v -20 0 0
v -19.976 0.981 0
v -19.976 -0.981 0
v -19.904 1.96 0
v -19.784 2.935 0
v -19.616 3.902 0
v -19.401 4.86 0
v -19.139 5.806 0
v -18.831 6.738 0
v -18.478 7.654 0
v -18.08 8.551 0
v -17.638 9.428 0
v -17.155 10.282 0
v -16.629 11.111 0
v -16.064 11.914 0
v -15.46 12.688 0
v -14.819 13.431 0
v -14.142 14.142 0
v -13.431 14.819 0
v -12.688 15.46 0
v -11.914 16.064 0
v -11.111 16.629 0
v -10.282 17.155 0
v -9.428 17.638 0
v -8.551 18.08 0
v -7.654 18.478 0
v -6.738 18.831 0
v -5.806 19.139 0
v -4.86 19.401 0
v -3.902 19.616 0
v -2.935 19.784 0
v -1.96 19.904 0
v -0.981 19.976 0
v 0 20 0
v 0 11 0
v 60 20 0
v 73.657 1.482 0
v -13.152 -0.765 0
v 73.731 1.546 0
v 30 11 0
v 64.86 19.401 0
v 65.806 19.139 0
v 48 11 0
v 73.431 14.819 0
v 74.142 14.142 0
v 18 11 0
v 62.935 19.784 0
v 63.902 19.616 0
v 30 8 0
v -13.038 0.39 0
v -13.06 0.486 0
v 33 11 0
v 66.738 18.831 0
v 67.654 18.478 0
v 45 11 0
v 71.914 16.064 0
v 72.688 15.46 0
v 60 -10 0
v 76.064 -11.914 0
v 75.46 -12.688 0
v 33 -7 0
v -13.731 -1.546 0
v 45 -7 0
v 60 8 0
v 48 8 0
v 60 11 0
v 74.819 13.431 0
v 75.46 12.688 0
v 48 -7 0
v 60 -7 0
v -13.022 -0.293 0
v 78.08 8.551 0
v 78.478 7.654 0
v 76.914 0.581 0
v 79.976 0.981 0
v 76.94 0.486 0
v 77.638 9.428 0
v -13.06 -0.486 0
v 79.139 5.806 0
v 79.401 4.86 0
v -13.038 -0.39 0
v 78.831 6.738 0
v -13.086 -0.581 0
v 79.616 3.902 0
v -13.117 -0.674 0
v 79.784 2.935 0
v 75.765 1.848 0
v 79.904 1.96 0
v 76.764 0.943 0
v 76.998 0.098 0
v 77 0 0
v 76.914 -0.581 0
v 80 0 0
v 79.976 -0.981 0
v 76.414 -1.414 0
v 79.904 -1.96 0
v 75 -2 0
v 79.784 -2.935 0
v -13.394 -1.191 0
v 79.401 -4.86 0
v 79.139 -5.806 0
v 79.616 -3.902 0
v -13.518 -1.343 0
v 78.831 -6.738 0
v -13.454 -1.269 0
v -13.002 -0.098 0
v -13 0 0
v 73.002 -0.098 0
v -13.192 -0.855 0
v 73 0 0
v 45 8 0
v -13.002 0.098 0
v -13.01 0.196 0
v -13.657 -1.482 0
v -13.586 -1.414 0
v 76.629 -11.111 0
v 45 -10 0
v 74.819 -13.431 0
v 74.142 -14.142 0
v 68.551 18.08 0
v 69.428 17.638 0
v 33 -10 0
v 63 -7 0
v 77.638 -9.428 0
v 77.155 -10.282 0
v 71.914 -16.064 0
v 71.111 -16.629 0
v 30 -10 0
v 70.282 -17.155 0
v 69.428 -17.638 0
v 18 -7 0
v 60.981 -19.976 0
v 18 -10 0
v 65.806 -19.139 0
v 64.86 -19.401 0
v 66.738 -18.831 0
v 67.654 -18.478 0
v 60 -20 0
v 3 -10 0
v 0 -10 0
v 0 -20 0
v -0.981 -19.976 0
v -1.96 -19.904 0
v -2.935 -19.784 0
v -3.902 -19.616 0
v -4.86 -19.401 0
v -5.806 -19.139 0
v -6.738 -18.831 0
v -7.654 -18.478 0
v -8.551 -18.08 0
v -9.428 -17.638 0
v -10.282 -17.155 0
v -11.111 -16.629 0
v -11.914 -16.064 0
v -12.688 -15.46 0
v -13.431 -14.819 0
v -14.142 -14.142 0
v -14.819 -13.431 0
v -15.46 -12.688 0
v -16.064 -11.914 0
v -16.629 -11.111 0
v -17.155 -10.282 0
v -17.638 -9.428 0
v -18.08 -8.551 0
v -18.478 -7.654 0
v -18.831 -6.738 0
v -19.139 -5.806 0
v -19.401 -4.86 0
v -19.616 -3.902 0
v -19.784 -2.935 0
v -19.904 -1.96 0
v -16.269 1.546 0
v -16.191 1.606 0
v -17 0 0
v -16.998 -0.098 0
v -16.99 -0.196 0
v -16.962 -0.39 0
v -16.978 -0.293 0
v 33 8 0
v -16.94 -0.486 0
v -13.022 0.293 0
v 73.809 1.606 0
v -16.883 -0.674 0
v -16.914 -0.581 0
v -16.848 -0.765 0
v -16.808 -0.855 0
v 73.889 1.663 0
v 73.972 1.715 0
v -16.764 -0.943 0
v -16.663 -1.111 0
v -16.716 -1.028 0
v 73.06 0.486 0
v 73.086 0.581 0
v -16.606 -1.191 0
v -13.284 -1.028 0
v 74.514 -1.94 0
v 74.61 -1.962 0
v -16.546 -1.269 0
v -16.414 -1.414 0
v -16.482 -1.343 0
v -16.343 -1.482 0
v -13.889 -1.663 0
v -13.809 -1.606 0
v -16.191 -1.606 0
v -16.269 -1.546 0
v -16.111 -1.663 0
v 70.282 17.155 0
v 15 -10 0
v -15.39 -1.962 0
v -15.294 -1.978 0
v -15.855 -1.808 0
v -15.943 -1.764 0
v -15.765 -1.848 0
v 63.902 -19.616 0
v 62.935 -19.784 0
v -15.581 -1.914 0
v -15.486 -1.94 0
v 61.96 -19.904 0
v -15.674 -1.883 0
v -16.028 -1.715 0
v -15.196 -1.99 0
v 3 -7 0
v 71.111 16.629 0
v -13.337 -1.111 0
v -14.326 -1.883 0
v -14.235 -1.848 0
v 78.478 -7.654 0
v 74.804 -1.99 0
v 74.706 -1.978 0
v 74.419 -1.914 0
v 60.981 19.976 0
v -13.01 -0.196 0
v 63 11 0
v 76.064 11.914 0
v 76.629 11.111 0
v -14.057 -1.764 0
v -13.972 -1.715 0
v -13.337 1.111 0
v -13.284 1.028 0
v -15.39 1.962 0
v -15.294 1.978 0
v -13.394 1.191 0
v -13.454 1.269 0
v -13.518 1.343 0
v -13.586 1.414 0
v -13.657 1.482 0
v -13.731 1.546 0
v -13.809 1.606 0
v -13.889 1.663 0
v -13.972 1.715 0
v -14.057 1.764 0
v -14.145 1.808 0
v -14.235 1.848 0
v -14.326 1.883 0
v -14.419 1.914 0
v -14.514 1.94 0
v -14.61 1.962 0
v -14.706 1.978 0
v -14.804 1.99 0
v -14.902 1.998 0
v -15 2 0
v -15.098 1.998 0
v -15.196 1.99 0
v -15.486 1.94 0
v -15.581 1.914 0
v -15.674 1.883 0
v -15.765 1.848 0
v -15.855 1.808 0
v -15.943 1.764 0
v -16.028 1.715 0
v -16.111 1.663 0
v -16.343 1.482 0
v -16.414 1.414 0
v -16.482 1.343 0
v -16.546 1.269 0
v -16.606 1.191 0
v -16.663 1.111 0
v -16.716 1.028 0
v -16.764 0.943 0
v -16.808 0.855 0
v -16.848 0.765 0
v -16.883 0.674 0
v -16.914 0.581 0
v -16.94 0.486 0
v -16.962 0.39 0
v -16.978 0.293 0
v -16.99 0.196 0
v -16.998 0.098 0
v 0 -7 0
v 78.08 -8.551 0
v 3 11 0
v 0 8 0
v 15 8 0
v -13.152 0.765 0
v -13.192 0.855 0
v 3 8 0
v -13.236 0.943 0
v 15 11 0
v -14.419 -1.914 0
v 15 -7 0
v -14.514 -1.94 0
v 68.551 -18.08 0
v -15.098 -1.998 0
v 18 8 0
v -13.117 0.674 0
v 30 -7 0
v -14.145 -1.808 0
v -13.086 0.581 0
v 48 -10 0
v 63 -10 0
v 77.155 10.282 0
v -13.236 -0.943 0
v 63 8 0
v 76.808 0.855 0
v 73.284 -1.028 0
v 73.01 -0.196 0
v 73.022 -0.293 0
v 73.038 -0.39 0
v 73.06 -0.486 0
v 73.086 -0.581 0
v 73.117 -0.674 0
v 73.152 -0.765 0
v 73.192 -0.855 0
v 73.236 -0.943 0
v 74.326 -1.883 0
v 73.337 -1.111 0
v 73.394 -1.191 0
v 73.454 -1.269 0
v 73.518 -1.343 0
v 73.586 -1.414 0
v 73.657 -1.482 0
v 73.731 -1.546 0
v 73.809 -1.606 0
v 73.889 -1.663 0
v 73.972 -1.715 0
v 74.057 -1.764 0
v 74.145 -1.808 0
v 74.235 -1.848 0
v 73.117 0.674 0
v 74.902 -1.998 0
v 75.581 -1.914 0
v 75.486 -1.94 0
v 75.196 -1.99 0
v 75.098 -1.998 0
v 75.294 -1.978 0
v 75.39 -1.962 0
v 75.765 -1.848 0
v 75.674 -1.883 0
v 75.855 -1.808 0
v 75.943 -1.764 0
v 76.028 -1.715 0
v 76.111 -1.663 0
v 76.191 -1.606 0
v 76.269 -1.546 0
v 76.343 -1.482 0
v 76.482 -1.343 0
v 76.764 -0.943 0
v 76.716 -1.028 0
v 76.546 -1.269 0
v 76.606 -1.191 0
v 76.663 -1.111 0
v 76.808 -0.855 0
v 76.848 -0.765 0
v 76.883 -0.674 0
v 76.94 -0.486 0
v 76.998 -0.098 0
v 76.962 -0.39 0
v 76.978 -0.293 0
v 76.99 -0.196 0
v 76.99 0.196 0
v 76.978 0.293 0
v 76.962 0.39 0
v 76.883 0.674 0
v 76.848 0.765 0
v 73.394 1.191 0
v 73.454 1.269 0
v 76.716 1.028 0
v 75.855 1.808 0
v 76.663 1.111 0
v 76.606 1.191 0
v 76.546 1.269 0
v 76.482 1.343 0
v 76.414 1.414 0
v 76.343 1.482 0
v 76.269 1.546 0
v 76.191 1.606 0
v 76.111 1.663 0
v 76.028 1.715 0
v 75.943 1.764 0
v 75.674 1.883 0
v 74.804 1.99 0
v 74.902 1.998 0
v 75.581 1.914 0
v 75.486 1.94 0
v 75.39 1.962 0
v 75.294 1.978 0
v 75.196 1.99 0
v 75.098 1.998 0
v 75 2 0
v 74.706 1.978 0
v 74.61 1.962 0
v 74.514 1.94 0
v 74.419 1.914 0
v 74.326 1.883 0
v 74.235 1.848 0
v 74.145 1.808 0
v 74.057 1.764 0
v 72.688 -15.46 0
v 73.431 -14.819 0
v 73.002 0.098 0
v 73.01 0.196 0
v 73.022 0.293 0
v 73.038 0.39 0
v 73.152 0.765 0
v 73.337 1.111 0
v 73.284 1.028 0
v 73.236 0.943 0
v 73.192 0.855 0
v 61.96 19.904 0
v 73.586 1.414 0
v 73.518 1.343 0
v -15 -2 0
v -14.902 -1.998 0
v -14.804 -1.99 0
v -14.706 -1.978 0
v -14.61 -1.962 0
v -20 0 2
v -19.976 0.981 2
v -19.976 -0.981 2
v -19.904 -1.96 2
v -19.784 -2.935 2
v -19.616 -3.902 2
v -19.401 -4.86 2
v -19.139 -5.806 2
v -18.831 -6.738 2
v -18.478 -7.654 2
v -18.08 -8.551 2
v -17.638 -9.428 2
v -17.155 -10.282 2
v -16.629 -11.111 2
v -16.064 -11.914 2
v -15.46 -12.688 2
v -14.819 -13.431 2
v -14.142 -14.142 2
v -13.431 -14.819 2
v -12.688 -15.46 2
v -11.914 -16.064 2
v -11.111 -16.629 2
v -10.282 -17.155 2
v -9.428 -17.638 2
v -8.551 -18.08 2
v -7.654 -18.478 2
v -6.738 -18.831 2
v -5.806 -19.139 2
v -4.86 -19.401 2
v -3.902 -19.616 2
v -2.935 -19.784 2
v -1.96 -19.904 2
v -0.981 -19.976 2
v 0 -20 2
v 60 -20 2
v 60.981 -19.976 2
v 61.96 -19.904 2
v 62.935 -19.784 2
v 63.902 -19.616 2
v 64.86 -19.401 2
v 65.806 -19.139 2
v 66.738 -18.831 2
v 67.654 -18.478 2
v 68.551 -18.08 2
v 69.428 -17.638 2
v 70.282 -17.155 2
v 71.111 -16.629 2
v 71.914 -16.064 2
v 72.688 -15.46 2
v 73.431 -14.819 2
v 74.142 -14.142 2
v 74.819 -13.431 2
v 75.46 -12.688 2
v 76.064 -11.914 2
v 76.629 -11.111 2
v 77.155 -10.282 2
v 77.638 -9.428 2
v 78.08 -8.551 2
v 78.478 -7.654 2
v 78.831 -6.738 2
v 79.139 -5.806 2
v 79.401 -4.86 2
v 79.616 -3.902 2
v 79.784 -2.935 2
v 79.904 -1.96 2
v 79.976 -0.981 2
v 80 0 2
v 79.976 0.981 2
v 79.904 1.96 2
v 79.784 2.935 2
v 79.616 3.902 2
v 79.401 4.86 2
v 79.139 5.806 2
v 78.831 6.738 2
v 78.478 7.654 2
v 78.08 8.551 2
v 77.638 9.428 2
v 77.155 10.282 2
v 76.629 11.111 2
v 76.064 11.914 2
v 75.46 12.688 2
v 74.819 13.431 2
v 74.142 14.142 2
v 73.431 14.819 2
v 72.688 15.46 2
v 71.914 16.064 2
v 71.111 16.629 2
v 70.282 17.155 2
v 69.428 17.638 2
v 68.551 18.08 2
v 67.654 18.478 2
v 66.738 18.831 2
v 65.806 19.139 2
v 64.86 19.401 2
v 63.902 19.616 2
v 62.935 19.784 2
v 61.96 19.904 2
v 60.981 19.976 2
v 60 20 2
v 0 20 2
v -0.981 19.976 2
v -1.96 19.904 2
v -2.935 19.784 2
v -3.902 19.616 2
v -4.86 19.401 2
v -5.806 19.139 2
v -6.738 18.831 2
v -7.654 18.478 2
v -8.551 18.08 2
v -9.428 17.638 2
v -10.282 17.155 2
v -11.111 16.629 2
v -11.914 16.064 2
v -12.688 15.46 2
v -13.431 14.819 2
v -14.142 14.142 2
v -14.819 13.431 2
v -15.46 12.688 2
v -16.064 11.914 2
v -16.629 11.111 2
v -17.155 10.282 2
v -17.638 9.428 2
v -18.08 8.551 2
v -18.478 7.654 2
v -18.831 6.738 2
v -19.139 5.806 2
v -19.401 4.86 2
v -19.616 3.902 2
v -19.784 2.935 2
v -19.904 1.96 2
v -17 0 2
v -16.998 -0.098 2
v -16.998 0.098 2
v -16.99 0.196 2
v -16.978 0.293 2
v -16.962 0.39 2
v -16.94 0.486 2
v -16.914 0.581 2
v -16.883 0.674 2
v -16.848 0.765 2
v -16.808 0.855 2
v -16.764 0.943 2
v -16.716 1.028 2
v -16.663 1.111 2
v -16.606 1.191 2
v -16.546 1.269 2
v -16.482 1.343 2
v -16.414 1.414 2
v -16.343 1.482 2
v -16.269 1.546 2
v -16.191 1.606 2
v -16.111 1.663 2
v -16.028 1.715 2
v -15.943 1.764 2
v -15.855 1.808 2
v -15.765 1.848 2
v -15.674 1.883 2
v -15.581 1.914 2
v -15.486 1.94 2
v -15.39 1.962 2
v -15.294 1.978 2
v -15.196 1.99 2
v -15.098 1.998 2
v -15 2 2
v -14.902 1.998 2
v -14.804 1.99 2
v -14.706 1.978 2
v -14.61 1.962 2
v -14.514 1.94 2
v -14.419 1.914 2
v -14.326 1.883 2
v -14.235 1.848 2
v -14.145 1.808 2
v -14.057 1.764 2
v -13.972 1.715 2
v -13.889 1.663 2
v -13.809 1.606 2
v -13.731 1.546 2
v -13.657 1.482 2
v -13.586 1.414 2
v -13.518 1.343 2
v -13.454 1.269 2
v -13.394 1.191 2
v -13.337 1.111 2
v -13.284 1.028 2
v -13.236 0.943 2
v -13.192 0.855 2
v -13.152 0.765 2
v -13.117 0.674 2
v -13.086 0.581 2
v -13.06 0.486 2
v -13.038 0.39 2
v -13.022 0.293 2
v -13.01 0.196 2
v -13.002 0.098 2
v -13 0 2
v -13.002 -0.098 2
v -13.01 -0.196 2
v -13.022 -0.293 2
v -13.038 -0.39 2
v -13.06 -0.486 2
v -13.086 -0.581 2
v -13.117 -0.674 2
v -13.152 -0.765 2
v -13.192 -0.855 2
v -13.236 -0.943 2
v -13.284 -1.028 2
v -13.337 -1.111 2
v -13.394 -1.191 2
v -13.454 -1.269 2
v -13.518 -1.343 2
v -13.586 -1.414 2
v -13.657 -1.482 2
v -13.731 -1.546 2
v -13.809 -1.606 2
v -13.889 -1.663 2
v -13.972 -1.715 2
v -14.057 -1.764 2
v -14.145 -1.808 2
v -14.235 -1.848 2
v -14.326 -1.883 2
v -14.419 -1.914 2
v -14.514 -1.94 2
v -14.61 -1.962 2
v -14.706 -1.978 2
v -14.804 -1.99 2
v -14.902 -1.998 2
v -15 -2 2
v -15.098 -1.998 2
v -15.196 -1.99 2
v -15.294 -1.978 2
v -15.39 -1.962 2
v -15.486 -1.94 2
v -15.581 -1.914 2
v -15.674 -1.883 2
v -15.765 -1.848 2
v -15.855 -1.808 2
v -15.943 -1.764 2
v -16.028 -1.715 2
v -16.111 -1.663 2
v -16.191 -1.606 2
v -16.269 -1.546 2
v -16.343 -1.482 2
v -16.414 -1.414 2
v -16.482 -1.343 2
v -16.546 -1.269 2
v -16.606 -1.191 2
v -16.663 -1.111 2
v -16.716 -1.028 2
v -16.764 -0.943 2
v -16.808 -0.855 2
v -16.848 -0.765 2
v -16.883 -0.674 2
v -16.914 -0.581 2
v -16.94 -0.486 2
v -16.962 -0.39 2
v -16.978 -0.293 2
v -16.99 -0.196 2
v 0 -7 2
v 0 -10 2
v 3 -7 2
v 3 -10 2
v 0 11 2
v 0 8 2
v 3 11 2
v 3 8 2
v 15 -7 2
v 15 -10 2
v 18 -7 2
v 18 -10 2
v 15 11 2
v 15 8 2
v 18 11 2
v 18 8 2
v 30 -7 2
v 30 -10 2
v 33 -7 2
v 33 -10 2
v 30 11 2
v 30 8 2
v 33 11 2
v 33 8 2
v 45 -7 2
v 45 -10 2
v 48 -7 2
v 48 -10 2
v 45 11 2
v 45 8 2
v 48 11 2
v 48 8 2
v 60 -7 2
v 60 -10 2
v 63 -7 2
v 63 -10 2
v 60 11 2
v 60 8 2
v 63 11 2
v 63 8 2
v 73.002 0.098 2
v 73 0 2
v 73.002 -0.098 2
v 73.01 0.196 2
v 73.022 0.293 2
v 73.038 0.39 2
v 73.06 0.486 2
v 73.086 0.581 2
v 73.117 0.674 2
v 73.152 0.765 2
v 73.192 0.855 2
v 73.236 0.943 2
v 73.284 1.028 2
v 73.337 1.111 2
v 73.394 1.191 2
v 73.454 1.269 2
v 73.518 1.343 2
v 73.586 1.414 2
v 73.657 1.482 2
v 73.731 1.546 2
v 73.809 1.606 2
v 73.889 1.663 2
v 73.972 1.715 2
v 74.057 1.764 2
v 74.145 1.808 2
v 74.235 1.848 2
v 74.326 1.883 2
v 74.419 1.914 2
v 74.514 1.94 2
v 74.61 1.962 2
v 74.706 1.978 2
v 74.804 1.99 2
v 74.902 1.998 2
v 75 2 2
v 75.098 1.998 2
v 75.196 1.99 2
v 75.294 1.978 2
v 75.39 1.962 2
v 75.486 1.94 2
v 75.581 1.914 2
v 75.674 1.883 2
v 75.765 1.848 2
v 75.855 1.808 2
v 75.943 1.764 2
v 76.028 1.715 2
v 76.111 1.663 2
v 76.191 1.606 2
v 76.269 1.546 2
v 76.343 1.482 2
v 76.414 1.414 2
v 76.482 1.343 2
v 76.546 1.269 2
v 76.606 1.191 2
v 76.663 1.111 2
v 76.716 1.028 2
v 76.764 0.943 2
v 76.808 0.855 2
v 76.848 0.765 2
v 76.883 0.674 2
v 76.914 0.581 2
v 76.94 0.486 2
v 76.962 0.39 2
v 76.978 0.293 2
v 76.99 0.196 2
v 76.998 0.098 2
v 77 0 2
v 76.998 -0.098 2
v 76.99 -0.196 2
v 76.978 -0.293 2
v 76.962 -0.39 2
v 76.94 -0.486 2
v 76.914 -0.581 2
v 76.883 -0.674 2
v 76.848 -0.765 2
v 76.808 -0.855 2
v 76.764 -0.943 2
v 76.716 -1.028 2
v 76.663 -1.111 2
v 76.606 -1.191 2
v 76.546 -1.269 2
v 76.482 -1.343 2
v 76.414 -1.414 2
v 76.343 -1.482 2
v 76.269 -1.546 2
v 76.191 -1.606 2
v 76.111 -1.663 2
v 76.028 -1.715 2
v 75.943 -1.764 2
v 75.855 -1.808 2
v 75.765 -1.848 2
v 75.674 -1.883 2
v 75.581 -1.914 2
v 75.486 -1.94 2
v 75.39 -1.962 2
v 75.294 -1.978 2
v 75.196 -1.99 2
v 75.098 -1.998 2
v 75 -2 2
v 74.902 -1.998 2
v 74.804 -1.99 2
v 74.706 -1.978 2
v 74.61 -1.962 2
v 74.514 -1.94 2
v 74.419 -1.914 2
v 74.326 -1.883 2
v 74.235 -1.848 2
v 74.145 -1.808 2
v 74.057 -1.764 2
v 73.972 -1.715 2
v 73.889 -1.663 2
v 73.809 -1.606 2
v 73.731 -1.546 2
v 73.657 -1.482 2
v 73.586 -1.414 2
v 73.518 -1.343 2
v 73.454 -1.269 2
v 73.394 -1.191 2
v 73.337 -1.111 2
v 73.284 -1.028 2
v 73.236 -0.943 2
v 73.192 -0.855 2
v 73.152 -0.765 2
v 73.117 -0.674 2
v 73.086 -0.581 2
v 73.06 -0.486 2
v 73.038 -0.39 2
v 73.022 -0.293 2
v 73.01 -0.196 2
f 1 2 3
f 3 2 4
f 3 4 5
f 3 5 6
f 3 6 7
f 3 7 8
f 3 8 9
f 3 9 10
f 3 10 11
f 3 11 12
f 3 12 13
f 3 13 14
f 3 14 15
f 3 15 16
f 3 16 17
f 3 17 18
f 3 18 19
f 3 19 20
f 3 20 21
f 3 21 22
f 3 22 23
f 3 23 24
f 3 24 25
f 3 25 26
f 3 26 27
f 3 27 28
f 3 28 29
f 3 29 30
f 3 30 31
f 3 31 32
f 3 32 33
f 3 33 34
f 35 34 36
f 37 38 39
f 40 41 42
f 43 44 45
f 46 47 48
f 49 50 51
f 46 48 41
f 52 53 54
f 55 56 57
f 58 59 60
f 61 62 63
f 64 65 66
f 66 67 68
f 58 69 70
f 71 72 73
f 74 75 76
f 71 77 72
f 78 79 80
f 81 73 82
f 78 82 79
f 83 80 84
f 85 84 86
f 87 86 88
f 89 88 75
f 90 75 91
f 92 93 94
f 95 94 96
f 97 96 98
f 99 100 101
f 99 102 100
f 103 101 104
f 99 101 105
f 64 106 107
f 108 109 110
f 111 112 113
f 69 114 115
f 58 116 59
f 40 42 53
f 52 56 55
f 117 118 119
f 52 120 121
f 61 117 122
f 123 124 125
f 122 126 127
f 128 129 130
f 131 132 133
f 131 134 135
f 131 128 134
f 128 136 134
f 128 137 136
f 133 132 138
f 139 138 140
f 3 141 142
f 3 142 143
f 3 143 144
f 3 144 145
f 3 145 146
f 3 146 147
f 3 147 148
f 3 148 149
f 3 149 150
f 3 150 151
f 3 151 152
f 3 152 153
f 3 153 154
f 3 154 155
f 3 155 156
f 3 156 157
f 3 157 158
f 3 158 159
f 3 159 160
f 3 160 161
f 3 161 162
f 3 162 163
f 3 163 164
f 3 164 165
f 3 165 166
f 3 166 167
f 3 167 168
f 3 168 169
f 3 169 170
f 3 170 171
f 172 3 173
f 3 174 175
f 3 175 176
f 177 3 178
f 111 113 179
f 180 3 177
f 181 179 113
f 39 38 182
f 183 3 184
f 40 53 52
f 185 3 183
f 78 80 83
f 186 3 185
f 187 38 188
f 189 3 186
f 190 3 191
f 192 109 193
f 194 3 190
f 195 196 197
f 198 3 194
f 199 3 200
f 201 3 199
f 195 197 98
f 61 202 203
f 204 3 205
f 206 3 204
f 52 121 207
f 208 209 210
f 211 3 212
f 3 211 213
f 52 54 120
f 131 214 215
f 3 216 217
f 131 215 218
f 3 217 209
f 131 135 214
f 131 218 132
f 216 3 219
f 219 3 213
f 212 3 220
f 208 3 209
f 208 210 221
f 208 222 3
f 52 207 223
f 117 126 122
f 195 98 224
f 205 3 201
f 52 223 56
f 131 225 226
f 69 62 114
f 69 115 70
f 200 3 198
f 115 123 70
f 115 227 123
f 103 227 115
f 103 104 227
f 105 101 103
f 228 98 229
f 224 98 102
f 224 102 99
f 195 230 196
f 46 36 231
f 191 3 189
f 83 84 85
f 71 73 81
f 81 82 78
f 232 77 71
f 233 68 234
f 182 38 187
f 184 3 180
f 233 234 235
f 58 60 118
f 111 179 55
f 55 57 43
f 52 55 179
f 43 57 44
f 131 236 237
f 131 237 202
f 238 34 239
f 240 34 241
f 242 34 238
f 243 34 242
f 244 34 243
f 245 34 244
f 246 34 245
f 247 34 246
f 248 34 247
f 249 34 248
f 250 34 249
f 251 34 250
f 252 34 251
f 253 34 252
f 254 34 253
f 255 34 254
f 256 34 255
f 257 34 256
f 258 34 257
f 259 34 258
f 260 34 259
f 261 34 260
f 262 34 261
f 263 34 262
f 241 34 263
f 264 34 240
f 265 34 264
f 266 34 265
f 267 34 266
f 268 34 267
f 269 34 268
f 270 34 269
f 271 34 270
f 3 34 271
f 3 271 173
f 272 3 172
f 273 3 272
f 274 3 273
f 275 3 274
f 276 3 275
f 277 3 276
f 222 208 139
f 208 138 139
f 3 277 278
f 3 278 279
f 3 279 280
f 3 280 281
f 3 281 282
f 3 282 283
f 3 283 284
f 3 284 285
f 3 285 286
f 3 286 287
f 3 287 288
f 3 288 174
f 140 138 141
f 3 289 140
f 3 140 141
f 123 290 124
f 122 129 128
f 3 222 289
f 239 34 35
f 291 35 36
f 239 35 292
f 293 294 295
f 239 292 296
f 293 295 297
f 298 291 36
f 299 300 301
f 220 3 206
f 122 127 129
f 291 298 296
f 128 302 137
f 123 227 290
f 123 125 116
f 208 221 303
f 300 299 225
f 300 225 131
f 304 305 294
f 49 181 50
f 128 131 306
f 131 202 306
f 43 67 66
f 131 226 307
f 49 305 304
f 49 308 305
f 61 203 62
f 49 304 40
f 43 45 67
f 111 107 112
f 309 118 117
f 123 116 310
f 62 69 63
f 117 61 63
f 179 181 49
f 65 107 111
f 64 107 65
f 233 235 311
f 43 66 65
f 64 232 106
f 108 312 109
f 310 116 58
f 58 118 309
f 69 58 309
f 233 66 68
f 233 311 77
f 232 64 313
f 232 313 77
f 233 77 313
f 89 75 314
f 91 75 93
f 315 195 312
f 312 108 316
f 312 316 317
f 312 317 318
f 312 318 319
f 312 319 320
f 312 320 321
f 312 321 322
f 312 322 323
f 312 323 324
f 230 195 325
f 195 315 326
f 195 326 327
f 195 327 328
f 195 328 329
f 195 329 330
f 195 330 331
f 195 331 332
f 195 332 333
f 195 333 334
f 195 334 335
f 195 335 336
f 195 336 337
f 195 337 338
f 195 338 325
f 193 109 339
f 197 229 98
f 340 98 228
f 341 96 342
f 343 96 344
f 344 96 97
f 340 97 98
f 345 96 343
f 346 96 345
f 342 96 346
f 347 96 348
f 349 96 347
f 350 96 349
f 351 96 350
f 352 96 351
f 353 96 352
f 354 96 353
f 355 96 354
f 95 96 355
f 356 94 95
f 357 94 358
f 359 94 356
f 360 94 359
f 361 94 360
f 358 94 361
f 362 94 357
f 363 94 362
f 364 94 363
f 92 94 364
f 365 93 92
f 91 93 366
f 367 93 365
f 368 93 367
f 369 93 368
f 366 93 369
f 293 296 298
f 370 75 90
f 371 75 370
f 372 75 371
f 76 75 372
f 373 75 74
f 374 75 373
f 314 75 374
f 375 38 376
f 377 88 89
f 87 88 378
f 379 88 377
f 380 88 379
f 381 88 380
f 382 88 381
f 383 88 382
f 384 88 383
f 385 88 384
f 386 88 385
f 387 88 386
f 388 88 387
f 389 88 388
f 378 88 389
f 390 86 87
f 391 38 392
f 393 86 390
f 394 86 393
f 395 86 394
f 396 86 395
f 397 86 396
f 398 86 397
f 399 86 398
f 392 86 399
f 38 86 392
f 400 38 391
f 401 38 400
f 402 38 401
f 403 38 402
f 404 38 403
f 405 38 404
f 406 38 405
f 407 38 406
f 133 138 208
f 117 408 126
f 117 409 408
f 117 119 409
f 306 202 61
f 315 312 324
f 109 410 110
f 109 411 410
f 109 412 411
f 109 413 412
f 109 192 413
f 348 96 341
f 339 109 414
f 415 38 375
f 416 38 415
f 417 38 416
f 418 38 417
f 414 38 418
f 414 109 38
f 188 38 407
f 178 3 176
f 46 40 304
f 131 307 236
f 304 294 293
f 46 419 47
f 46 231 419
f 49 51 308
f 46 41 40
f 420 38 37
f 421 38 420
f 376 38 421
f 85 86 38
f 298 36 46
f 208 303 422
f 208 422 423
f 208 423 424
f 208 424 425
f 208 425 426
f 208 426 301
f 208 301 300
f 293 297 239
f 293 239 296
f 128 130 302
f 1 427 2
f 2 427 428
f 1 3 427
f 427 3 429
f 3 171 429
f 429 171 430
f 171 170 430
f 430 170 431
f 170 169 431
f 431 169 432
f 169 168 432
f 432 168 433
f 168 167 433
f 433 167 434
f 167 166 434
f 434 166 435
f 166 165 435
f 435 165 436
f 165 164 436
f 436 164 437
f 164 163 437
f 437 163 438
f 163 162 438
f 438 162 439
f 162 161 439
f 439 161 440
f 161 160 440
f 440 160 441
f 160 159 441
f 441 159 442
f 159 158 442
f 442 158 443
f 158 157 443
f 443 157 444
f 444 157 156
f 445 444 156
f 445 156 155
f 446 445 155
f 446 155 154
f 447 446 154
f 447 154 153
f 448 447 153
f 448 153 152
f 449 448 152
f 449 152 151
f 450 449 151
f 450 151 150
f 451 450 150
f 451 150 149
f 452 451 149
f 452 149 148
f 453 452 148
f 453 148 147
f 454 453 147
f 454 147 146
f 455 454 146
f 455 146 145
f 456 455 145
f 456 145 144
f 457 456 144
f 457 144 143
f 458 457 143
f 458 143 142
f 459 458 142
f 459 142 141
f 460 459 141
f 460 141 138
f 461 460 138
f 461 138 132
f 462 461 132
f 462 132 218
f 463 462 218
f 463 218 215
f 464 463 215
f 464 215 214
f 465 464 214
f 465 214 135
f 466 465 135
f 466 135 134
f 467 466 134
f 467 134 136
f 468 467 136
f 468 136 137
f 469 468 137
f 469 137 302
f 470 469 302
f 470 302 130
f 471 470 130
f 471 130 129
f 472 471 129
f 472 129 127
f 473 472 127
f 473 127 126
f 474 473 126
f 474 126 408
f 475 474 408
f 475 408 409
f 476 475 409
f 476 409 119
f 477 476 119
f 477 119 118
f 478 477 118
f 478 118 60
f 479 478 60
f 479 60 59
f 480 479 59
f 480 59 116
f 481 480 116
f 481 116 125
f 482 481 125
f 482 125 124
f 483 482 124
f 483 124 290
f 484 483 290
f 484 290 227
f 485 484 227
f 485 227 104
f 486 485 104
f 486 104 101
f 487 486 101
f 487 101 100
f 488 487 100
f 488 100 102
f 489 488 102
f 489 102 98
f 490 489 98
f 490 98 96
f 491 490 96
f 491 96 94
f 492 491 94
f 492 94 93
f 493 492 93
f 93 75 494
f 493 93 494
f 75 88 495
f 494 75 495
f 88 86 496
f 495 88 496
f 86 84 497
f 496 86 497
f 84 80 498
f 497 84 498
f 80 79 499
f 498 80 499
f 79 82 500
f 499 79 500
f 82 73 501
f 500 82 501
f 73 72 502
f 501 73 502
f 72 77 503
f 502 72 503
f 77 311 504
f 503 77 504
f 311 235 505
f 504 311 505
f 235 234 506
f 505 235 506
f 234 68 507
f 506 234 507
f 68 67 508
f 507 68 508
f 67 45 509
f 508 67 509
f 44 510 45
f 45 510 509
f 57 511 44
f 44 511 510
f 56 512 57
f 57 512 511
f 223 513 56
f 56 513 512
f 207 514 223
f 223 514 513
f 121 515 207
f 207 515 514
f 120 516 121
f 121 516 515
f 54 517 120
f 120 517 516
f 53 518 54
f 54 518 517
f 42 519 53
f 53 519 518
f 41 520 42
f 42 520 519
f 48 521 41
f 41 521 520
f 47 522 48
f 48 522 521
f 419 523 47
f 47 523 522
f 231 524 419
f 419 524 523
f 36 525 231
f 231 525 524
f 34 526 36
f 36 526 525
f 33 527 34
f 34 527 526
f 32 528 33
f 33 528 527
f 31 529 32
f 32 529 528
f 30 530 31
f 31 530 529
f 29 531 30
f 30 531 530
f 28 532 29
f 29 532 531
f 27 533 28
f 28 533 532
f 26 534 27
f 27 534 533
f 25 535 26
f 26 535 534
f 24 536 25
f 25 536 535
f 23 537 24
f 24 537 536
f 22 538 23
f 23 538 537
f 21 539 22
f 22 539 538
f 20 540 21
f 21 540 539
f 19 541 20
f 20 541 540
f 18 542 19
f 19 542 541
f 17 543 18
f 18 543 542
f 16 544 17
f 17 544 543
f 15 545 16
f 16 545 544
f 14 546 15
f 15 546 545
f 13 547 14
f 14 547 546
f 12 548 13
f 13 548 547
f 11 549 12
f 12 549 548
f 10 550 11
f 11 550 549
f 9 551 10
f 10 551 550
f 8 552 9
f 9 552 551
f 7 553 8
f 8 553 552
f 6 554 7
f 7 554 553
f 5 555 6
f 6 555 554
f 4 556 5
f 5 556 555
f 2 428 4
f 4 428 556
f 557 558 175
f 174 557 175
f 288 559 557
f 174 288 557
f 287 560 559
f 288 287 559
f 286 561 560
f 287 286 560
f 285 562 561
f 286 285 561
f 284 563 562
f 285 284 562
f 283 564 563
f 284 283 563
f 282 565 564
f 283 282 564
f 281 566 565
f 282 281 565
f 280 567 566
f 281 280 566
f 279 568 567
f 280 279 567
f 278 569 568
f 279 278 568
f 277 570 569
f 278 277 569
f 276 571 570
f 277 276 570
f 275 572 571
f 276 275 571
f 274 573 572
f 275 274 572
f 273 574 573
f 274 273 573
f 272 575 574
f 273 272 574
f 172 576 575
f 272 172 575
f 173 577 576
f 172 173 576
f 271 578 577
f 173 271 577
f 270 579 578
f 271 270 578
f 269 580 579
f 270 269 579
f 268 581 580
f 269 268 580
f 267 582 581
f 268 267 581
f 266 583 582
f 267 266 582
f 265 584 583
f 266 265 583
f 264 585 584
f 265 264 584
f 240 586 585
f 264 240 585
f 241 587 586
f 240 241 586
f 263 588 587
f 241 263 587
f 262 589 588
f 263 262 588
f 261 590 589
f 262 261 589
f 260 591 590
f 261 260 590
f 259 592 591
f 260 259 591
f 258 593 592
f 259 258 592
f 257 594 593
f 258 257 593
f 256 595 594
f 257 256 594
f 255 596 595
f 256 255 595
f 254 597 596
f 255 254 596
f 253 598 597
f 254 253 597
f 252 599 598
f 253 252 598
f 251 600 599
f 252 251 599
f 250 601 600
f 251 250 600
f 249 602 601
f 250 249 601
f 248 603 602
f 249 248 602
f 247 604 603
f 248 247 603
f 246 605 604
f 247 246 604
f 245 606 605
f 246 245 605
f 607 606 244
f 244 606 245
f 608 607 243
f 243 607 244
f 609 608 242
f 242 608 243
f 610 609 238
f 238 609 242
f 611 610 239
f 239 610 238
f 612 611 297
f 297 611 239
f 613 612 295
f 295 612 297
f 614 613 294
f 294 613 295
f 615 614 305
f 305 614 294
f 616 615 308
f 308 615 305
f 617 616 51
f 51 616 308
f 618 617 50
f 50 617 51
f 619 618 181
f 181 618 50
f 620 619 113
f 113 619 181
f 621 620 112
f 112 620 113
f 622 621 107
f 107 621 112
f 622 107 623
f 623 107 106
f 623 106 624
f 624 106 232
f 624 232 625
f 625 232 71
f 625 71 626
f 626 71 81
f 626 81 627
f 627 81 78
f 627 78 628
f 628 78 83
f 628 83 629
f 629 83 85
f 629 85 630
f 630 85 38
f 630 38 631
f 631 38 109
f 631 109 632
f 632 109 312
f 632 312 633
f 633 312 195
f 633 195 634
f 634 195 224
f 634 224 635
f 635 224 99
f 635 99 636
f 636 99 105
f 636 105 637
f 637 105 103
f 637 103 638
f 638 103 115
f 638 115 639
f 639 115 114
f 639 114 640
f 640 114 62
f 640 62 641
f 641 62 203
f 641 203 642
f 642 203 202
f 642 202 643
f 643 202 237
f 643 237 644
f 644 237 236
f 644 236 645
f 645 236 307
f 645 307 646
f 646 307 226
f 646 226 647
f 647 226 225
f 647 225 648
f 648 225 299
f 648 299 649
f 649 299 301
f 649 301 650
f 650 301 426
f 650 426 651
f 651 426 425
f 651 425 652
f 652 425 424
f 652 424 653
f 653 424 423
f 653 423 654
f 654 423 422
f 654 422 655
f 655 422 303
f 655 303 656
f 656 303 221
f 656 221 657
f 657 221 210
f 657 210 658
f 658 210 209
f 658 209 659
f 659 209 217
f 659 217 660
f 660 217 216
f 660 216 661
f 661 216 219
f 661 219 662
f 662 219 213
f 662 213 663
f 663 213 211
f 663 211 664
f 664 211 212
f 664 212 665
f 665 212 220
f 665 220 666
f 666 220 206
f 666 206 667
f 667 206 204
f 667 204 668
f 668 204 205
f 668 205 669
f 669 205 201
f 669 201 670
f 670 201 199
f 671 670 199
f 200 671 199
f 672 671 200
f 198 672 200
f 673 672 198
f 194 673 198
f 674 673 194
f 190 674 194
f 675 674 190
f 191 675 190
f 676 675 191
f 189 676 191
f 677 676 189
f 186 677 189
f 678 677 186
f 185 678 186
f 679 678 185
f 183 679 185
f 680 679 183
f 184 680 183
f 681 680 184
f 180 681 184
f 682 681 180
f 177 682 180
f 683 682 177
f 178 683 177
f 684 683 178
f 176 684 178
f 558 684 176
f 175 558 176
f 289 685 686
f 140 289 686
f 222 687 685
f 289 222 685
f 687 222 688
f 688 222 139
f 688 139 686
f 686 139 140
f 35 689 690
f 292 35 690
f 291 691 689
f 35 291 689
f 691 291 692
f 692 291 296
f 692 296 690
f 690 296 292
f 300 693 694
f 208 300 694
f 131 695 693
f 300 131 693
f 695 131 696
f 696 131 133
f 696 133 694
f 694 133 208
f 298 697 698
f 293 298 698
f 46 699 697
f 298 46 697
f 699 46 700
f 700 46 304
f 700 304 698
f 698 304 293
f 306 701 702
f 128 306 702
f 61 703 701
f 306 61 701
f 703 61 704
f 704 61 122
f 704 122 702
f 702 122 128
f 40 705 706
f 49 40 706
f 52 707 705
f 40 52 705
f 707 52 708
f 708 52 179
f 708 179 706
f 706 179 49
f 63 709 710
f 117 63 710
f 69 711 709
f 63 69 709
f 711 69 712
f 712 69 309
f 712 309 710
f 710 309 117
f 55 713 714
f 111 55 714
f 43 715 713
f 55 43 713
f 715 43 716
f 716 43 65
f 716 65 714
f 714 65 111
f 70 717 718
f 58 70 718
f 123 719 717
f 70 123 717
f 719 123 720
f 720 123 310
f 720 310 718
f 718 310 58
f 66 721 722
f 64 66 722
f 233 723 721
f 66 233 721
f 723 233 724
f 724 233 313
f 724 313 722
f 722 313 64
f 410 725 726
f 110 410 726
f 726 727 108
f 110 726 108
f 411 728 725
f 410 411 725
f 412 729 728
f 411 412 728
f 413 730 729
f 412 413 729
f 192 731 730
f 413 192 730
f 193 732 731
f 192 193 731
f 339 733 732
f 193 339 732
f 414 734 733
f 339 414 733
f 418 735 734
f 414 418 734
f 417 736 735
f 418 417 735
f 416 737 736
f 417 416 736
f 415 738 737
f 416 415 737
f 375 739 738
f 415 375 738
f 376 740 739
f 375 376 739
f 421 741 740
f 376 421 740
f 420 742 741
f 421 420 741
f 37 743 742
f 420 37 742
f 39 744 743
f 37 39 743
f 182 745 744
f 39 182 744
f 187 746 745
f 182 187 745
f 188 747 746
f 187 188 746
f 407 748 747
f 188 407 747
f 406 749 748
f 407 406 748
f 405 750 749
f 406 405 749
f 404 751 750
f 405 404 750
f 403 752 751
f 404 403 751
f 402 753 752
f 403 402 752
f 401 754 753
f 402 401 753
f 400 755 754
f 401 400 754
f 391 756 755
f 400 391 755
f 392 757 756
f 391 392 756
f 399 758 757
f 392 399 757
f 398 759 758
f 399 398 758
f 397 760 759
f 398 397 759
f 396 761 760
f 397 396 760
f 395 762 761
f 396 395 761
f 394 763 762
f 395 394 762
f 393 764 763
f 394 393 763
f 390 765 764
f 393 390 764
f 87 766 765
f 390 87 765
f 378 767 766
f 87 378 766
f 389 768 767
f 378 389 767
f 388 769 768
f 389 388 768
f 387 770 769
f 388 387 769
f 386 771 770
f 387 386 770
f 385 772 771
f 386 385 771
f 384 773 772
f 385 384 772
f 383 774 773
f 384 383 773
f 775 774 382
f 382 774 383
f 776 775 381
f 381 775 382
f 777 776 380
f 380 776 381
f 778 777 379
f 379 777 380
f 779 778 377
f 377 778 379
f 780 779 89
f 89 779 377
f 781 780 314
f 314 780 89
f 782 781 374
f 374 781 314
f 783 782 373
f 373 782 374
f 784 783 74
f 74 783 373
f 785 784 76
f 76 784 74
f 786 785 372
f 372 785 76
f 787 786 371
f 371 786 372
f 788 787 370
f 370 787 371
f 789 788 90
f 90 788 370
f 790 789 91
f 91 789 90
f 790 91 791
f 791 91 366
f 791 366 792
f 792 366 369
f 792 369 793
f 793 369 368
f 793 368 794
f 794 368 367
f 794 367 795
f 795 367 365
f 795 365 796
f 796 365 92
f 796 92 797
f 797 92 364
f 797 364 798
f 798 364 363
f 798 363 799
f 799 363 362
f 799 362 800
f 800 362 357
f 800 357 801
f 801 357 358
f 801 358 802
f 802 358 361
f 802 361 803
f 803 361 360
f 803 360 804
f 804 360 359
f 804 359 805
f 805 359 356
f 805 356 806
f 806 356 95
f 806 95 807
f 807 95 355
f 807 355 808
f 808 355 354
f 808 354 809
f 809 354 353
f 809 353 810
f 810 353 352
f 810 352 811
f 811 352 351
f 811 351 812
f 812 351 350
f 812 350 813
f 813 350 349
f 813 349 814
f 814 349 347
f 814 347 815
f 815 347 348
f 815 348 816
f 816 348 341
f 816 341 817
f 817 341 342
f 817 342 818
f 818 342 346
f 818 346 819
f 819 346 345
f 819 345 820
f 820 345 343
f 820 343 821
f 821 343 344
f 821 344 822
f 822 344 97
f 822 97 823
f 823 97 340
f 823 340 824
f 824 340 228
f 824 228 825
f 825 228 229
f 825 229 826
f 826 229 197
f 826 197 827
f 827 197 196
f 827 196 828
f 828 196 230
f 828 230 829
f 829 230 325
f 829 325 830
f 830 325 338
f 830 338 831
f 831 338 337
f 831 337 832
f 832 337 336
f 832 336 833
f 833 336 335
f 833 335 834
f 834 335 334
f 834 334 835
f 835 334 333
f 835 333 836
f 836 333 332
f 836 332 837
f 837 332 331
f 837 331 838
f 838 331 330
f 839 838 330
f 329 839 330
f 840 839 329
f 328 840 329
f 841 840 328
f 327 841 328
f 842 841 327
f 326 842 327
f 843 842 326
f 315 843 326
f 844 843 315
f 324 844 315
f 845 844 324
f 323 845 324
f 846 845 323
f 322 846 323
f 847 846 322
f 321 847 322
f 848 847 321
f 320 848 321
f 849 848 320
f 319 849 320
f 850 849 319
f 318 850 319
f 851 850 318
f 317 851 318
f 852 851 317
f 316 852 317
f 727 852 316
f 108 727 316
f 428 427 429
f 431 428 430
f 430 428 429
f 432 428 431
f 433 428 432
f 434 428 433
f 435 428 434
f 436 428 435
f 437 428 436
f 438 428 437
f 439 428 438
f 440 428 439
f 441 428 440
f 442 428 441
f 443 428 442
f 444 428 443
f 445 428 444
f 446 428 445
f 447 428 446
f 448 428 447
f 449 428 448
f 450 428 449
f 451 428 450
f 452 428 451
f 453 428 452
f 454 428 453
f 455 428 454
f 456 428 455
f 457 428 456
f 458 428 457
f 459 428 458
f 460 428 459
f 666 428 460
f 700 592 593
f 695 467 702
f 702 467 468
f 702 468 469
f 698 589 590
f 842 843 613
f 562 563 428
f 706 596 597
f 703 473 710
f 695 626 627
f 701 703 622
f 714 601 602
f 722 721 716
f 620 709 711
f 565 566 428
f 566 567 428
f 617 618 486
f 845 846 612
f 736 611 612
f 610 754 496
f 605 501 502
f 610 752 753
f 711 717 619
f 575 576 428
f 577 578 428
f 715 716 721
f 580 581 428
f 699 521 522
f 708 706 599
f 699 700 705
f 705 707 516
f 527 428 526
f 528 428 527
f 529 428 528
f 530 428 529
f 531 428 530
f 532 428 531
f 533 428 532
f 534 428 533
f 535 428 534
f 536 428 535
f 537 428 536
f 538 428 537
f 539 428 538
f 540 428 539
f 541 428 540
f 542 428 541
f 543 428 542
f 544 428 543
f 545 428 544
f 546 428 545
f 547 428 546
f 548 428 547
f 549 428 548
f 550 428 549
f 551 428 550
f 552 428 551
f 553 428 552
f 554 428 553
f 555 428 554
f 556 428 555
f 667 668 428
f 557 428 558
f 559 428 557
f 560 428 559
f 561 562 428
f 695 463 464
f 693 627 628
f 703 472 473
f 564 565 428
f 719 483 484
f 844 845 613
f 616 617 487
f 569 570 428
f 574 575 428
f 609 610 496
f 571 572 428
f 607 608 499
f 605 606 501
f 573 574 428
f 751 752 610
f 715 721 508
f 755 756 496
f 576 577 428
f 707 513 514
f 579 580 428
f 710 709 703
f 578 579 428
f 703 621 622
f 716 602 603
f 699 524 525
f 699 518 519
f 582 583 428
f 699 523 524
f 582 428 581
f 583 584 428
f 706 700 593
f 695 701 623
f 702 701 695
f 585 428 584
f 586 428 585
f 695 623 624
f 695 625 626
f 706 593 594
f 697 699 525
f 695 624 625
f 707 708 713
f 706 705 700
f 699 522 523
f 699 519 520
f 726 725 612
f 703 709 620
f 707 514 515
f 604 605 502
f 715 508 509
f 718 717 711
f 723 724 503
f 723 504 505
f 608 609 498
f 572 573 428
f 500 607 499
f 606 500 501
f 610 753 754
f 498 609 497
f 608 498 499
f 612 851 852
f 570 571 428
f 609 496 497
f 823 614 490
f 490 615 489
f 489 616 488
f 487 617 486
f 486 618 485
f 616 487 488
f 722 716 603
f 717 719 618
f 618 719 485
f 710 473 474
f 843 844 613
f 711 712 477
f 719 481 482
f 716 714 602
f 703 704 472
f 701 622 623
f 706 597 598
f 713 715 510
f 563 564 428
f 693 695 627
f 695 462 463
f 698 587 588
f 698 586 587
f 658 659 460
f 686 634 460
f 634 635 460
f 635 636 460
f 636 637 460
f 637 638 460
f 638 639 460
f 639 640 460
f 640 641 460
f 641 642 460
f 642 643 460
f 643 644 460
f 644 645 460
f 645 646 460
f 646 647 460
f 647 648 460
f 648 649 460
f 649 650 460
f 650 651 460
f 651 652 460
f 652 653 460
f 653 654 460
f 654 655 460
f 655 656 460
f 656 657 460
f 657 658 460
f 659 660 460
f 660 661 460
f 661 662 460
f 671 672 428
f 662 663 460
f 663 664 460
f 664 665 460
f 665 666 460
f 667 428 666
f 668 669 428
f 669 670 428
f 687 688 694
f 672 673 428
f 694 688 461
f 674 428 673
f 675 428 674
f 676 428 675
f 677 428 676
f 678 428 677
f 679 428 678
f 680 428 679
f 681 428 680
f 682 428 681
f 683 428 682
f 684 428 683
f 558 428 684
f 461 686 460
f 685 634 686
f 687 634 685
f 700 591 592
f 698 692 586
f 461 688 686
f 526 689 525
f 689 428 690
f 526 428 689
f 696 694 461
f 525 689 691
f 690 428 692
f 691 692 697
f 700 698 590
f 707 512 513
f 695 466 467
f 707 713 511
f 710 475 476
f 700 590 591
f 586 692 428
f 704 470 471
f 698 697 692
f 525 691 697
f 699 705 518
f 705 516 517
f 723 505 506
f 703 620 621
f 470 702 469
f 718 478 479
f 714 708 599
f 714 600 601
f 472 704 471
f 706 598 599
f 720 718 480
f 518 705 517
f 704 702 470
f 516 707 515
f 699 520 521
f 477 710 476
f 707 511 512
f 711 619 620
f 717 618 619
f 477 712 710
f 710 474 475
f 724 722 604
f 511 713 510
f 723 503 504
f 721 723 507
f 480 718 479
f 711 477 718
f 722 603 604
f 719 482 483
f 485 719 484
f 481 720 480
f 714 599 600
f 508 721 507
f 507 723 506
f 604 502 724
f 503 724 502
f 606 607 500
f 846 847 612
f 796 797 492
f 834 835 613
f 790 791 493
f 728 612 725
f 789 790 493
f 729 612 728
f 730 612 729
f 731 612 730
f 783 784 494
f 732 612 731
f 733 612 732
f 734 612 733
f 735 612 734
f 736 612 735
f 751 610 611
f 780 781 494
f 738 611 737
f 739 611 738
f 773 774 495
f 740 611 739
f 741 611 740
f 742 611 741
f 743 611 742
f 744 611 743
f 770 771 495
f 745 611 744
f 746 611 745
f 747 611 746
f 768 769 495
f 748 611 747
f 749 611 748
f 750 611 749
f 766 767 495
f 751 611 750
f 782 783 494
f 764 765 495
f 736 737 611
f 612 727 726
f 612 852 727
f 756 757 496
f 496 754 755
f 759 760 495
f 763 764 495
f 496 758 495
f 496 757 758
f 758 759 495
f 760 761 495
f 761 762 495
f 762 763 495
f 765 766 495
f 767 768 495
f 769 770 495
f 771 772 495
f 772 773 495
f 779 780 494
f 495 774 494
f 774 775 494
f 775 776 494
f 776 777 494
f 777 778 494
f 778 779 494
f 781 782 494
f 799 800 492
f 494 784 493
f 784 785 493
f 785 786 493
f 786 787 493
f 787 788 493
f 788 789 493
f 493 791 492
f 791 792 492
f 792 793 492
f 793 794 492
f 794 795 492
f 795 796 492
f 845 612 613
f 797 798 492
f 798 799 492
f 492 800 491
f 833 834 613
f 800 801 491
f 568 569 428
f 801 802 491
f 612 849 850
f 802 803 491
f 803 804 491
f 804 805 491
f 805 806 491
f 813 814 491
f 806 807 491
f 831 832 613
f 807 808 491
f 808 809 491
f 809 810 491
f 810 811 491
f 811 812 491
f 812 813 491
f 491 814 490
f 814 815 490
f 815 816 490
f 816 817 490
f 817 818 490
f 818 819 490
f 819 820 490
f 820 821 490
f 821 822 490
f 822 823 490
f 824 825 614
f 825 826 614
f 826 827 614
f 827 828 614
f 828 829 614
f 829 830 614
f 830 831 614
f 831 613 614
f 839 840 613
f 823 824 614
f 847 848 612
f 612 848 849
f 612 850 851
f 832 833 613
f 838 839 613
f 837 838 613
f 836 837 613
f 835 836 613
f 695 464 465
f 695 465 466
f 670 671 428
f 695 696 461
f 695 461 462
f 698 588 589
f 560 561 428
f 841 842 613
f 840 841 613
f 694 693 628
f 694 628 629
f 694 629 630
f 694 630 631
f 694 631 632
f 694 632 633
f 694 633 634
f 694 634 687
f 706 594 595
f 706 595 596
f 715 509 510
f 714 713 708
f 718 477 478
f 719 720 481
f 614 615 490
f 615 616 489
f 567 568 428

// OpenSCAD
//Maxim Logunchov 22.11.2013.
$fn=128;

difference(c) {

//Основа
union(a){
cylinder(2,20,20);
translate([60,0,0])cylinder(2,20,20);
translate([0,-20,0])cube([60,40,2]);
}
//Отверстия для магнитов
union(b){
translate([0,8,0])cube(3,5,5);
translate([15,8,0])cube(3,5,5);
translate([30,8,0])cube(3,5,5);
translate([45,8,0])cube(3,5,5);
translate([60,8,0])cube(3,5,5);
translate([0,-10,0])cube(3,5,5);
translate([15,-10,0])cube(3,5,5);
translate([30,-10,0])cube(3,5,5);
translate([45,-10,0])cube(3,5,5);
translate([60,-10,0])cube(3,5,5);
}
//Отверстия для вставки
translate([75,0,0])cylinder(6,2,2);
translate([-15,0,0])cylinder(6,2,2);
}
